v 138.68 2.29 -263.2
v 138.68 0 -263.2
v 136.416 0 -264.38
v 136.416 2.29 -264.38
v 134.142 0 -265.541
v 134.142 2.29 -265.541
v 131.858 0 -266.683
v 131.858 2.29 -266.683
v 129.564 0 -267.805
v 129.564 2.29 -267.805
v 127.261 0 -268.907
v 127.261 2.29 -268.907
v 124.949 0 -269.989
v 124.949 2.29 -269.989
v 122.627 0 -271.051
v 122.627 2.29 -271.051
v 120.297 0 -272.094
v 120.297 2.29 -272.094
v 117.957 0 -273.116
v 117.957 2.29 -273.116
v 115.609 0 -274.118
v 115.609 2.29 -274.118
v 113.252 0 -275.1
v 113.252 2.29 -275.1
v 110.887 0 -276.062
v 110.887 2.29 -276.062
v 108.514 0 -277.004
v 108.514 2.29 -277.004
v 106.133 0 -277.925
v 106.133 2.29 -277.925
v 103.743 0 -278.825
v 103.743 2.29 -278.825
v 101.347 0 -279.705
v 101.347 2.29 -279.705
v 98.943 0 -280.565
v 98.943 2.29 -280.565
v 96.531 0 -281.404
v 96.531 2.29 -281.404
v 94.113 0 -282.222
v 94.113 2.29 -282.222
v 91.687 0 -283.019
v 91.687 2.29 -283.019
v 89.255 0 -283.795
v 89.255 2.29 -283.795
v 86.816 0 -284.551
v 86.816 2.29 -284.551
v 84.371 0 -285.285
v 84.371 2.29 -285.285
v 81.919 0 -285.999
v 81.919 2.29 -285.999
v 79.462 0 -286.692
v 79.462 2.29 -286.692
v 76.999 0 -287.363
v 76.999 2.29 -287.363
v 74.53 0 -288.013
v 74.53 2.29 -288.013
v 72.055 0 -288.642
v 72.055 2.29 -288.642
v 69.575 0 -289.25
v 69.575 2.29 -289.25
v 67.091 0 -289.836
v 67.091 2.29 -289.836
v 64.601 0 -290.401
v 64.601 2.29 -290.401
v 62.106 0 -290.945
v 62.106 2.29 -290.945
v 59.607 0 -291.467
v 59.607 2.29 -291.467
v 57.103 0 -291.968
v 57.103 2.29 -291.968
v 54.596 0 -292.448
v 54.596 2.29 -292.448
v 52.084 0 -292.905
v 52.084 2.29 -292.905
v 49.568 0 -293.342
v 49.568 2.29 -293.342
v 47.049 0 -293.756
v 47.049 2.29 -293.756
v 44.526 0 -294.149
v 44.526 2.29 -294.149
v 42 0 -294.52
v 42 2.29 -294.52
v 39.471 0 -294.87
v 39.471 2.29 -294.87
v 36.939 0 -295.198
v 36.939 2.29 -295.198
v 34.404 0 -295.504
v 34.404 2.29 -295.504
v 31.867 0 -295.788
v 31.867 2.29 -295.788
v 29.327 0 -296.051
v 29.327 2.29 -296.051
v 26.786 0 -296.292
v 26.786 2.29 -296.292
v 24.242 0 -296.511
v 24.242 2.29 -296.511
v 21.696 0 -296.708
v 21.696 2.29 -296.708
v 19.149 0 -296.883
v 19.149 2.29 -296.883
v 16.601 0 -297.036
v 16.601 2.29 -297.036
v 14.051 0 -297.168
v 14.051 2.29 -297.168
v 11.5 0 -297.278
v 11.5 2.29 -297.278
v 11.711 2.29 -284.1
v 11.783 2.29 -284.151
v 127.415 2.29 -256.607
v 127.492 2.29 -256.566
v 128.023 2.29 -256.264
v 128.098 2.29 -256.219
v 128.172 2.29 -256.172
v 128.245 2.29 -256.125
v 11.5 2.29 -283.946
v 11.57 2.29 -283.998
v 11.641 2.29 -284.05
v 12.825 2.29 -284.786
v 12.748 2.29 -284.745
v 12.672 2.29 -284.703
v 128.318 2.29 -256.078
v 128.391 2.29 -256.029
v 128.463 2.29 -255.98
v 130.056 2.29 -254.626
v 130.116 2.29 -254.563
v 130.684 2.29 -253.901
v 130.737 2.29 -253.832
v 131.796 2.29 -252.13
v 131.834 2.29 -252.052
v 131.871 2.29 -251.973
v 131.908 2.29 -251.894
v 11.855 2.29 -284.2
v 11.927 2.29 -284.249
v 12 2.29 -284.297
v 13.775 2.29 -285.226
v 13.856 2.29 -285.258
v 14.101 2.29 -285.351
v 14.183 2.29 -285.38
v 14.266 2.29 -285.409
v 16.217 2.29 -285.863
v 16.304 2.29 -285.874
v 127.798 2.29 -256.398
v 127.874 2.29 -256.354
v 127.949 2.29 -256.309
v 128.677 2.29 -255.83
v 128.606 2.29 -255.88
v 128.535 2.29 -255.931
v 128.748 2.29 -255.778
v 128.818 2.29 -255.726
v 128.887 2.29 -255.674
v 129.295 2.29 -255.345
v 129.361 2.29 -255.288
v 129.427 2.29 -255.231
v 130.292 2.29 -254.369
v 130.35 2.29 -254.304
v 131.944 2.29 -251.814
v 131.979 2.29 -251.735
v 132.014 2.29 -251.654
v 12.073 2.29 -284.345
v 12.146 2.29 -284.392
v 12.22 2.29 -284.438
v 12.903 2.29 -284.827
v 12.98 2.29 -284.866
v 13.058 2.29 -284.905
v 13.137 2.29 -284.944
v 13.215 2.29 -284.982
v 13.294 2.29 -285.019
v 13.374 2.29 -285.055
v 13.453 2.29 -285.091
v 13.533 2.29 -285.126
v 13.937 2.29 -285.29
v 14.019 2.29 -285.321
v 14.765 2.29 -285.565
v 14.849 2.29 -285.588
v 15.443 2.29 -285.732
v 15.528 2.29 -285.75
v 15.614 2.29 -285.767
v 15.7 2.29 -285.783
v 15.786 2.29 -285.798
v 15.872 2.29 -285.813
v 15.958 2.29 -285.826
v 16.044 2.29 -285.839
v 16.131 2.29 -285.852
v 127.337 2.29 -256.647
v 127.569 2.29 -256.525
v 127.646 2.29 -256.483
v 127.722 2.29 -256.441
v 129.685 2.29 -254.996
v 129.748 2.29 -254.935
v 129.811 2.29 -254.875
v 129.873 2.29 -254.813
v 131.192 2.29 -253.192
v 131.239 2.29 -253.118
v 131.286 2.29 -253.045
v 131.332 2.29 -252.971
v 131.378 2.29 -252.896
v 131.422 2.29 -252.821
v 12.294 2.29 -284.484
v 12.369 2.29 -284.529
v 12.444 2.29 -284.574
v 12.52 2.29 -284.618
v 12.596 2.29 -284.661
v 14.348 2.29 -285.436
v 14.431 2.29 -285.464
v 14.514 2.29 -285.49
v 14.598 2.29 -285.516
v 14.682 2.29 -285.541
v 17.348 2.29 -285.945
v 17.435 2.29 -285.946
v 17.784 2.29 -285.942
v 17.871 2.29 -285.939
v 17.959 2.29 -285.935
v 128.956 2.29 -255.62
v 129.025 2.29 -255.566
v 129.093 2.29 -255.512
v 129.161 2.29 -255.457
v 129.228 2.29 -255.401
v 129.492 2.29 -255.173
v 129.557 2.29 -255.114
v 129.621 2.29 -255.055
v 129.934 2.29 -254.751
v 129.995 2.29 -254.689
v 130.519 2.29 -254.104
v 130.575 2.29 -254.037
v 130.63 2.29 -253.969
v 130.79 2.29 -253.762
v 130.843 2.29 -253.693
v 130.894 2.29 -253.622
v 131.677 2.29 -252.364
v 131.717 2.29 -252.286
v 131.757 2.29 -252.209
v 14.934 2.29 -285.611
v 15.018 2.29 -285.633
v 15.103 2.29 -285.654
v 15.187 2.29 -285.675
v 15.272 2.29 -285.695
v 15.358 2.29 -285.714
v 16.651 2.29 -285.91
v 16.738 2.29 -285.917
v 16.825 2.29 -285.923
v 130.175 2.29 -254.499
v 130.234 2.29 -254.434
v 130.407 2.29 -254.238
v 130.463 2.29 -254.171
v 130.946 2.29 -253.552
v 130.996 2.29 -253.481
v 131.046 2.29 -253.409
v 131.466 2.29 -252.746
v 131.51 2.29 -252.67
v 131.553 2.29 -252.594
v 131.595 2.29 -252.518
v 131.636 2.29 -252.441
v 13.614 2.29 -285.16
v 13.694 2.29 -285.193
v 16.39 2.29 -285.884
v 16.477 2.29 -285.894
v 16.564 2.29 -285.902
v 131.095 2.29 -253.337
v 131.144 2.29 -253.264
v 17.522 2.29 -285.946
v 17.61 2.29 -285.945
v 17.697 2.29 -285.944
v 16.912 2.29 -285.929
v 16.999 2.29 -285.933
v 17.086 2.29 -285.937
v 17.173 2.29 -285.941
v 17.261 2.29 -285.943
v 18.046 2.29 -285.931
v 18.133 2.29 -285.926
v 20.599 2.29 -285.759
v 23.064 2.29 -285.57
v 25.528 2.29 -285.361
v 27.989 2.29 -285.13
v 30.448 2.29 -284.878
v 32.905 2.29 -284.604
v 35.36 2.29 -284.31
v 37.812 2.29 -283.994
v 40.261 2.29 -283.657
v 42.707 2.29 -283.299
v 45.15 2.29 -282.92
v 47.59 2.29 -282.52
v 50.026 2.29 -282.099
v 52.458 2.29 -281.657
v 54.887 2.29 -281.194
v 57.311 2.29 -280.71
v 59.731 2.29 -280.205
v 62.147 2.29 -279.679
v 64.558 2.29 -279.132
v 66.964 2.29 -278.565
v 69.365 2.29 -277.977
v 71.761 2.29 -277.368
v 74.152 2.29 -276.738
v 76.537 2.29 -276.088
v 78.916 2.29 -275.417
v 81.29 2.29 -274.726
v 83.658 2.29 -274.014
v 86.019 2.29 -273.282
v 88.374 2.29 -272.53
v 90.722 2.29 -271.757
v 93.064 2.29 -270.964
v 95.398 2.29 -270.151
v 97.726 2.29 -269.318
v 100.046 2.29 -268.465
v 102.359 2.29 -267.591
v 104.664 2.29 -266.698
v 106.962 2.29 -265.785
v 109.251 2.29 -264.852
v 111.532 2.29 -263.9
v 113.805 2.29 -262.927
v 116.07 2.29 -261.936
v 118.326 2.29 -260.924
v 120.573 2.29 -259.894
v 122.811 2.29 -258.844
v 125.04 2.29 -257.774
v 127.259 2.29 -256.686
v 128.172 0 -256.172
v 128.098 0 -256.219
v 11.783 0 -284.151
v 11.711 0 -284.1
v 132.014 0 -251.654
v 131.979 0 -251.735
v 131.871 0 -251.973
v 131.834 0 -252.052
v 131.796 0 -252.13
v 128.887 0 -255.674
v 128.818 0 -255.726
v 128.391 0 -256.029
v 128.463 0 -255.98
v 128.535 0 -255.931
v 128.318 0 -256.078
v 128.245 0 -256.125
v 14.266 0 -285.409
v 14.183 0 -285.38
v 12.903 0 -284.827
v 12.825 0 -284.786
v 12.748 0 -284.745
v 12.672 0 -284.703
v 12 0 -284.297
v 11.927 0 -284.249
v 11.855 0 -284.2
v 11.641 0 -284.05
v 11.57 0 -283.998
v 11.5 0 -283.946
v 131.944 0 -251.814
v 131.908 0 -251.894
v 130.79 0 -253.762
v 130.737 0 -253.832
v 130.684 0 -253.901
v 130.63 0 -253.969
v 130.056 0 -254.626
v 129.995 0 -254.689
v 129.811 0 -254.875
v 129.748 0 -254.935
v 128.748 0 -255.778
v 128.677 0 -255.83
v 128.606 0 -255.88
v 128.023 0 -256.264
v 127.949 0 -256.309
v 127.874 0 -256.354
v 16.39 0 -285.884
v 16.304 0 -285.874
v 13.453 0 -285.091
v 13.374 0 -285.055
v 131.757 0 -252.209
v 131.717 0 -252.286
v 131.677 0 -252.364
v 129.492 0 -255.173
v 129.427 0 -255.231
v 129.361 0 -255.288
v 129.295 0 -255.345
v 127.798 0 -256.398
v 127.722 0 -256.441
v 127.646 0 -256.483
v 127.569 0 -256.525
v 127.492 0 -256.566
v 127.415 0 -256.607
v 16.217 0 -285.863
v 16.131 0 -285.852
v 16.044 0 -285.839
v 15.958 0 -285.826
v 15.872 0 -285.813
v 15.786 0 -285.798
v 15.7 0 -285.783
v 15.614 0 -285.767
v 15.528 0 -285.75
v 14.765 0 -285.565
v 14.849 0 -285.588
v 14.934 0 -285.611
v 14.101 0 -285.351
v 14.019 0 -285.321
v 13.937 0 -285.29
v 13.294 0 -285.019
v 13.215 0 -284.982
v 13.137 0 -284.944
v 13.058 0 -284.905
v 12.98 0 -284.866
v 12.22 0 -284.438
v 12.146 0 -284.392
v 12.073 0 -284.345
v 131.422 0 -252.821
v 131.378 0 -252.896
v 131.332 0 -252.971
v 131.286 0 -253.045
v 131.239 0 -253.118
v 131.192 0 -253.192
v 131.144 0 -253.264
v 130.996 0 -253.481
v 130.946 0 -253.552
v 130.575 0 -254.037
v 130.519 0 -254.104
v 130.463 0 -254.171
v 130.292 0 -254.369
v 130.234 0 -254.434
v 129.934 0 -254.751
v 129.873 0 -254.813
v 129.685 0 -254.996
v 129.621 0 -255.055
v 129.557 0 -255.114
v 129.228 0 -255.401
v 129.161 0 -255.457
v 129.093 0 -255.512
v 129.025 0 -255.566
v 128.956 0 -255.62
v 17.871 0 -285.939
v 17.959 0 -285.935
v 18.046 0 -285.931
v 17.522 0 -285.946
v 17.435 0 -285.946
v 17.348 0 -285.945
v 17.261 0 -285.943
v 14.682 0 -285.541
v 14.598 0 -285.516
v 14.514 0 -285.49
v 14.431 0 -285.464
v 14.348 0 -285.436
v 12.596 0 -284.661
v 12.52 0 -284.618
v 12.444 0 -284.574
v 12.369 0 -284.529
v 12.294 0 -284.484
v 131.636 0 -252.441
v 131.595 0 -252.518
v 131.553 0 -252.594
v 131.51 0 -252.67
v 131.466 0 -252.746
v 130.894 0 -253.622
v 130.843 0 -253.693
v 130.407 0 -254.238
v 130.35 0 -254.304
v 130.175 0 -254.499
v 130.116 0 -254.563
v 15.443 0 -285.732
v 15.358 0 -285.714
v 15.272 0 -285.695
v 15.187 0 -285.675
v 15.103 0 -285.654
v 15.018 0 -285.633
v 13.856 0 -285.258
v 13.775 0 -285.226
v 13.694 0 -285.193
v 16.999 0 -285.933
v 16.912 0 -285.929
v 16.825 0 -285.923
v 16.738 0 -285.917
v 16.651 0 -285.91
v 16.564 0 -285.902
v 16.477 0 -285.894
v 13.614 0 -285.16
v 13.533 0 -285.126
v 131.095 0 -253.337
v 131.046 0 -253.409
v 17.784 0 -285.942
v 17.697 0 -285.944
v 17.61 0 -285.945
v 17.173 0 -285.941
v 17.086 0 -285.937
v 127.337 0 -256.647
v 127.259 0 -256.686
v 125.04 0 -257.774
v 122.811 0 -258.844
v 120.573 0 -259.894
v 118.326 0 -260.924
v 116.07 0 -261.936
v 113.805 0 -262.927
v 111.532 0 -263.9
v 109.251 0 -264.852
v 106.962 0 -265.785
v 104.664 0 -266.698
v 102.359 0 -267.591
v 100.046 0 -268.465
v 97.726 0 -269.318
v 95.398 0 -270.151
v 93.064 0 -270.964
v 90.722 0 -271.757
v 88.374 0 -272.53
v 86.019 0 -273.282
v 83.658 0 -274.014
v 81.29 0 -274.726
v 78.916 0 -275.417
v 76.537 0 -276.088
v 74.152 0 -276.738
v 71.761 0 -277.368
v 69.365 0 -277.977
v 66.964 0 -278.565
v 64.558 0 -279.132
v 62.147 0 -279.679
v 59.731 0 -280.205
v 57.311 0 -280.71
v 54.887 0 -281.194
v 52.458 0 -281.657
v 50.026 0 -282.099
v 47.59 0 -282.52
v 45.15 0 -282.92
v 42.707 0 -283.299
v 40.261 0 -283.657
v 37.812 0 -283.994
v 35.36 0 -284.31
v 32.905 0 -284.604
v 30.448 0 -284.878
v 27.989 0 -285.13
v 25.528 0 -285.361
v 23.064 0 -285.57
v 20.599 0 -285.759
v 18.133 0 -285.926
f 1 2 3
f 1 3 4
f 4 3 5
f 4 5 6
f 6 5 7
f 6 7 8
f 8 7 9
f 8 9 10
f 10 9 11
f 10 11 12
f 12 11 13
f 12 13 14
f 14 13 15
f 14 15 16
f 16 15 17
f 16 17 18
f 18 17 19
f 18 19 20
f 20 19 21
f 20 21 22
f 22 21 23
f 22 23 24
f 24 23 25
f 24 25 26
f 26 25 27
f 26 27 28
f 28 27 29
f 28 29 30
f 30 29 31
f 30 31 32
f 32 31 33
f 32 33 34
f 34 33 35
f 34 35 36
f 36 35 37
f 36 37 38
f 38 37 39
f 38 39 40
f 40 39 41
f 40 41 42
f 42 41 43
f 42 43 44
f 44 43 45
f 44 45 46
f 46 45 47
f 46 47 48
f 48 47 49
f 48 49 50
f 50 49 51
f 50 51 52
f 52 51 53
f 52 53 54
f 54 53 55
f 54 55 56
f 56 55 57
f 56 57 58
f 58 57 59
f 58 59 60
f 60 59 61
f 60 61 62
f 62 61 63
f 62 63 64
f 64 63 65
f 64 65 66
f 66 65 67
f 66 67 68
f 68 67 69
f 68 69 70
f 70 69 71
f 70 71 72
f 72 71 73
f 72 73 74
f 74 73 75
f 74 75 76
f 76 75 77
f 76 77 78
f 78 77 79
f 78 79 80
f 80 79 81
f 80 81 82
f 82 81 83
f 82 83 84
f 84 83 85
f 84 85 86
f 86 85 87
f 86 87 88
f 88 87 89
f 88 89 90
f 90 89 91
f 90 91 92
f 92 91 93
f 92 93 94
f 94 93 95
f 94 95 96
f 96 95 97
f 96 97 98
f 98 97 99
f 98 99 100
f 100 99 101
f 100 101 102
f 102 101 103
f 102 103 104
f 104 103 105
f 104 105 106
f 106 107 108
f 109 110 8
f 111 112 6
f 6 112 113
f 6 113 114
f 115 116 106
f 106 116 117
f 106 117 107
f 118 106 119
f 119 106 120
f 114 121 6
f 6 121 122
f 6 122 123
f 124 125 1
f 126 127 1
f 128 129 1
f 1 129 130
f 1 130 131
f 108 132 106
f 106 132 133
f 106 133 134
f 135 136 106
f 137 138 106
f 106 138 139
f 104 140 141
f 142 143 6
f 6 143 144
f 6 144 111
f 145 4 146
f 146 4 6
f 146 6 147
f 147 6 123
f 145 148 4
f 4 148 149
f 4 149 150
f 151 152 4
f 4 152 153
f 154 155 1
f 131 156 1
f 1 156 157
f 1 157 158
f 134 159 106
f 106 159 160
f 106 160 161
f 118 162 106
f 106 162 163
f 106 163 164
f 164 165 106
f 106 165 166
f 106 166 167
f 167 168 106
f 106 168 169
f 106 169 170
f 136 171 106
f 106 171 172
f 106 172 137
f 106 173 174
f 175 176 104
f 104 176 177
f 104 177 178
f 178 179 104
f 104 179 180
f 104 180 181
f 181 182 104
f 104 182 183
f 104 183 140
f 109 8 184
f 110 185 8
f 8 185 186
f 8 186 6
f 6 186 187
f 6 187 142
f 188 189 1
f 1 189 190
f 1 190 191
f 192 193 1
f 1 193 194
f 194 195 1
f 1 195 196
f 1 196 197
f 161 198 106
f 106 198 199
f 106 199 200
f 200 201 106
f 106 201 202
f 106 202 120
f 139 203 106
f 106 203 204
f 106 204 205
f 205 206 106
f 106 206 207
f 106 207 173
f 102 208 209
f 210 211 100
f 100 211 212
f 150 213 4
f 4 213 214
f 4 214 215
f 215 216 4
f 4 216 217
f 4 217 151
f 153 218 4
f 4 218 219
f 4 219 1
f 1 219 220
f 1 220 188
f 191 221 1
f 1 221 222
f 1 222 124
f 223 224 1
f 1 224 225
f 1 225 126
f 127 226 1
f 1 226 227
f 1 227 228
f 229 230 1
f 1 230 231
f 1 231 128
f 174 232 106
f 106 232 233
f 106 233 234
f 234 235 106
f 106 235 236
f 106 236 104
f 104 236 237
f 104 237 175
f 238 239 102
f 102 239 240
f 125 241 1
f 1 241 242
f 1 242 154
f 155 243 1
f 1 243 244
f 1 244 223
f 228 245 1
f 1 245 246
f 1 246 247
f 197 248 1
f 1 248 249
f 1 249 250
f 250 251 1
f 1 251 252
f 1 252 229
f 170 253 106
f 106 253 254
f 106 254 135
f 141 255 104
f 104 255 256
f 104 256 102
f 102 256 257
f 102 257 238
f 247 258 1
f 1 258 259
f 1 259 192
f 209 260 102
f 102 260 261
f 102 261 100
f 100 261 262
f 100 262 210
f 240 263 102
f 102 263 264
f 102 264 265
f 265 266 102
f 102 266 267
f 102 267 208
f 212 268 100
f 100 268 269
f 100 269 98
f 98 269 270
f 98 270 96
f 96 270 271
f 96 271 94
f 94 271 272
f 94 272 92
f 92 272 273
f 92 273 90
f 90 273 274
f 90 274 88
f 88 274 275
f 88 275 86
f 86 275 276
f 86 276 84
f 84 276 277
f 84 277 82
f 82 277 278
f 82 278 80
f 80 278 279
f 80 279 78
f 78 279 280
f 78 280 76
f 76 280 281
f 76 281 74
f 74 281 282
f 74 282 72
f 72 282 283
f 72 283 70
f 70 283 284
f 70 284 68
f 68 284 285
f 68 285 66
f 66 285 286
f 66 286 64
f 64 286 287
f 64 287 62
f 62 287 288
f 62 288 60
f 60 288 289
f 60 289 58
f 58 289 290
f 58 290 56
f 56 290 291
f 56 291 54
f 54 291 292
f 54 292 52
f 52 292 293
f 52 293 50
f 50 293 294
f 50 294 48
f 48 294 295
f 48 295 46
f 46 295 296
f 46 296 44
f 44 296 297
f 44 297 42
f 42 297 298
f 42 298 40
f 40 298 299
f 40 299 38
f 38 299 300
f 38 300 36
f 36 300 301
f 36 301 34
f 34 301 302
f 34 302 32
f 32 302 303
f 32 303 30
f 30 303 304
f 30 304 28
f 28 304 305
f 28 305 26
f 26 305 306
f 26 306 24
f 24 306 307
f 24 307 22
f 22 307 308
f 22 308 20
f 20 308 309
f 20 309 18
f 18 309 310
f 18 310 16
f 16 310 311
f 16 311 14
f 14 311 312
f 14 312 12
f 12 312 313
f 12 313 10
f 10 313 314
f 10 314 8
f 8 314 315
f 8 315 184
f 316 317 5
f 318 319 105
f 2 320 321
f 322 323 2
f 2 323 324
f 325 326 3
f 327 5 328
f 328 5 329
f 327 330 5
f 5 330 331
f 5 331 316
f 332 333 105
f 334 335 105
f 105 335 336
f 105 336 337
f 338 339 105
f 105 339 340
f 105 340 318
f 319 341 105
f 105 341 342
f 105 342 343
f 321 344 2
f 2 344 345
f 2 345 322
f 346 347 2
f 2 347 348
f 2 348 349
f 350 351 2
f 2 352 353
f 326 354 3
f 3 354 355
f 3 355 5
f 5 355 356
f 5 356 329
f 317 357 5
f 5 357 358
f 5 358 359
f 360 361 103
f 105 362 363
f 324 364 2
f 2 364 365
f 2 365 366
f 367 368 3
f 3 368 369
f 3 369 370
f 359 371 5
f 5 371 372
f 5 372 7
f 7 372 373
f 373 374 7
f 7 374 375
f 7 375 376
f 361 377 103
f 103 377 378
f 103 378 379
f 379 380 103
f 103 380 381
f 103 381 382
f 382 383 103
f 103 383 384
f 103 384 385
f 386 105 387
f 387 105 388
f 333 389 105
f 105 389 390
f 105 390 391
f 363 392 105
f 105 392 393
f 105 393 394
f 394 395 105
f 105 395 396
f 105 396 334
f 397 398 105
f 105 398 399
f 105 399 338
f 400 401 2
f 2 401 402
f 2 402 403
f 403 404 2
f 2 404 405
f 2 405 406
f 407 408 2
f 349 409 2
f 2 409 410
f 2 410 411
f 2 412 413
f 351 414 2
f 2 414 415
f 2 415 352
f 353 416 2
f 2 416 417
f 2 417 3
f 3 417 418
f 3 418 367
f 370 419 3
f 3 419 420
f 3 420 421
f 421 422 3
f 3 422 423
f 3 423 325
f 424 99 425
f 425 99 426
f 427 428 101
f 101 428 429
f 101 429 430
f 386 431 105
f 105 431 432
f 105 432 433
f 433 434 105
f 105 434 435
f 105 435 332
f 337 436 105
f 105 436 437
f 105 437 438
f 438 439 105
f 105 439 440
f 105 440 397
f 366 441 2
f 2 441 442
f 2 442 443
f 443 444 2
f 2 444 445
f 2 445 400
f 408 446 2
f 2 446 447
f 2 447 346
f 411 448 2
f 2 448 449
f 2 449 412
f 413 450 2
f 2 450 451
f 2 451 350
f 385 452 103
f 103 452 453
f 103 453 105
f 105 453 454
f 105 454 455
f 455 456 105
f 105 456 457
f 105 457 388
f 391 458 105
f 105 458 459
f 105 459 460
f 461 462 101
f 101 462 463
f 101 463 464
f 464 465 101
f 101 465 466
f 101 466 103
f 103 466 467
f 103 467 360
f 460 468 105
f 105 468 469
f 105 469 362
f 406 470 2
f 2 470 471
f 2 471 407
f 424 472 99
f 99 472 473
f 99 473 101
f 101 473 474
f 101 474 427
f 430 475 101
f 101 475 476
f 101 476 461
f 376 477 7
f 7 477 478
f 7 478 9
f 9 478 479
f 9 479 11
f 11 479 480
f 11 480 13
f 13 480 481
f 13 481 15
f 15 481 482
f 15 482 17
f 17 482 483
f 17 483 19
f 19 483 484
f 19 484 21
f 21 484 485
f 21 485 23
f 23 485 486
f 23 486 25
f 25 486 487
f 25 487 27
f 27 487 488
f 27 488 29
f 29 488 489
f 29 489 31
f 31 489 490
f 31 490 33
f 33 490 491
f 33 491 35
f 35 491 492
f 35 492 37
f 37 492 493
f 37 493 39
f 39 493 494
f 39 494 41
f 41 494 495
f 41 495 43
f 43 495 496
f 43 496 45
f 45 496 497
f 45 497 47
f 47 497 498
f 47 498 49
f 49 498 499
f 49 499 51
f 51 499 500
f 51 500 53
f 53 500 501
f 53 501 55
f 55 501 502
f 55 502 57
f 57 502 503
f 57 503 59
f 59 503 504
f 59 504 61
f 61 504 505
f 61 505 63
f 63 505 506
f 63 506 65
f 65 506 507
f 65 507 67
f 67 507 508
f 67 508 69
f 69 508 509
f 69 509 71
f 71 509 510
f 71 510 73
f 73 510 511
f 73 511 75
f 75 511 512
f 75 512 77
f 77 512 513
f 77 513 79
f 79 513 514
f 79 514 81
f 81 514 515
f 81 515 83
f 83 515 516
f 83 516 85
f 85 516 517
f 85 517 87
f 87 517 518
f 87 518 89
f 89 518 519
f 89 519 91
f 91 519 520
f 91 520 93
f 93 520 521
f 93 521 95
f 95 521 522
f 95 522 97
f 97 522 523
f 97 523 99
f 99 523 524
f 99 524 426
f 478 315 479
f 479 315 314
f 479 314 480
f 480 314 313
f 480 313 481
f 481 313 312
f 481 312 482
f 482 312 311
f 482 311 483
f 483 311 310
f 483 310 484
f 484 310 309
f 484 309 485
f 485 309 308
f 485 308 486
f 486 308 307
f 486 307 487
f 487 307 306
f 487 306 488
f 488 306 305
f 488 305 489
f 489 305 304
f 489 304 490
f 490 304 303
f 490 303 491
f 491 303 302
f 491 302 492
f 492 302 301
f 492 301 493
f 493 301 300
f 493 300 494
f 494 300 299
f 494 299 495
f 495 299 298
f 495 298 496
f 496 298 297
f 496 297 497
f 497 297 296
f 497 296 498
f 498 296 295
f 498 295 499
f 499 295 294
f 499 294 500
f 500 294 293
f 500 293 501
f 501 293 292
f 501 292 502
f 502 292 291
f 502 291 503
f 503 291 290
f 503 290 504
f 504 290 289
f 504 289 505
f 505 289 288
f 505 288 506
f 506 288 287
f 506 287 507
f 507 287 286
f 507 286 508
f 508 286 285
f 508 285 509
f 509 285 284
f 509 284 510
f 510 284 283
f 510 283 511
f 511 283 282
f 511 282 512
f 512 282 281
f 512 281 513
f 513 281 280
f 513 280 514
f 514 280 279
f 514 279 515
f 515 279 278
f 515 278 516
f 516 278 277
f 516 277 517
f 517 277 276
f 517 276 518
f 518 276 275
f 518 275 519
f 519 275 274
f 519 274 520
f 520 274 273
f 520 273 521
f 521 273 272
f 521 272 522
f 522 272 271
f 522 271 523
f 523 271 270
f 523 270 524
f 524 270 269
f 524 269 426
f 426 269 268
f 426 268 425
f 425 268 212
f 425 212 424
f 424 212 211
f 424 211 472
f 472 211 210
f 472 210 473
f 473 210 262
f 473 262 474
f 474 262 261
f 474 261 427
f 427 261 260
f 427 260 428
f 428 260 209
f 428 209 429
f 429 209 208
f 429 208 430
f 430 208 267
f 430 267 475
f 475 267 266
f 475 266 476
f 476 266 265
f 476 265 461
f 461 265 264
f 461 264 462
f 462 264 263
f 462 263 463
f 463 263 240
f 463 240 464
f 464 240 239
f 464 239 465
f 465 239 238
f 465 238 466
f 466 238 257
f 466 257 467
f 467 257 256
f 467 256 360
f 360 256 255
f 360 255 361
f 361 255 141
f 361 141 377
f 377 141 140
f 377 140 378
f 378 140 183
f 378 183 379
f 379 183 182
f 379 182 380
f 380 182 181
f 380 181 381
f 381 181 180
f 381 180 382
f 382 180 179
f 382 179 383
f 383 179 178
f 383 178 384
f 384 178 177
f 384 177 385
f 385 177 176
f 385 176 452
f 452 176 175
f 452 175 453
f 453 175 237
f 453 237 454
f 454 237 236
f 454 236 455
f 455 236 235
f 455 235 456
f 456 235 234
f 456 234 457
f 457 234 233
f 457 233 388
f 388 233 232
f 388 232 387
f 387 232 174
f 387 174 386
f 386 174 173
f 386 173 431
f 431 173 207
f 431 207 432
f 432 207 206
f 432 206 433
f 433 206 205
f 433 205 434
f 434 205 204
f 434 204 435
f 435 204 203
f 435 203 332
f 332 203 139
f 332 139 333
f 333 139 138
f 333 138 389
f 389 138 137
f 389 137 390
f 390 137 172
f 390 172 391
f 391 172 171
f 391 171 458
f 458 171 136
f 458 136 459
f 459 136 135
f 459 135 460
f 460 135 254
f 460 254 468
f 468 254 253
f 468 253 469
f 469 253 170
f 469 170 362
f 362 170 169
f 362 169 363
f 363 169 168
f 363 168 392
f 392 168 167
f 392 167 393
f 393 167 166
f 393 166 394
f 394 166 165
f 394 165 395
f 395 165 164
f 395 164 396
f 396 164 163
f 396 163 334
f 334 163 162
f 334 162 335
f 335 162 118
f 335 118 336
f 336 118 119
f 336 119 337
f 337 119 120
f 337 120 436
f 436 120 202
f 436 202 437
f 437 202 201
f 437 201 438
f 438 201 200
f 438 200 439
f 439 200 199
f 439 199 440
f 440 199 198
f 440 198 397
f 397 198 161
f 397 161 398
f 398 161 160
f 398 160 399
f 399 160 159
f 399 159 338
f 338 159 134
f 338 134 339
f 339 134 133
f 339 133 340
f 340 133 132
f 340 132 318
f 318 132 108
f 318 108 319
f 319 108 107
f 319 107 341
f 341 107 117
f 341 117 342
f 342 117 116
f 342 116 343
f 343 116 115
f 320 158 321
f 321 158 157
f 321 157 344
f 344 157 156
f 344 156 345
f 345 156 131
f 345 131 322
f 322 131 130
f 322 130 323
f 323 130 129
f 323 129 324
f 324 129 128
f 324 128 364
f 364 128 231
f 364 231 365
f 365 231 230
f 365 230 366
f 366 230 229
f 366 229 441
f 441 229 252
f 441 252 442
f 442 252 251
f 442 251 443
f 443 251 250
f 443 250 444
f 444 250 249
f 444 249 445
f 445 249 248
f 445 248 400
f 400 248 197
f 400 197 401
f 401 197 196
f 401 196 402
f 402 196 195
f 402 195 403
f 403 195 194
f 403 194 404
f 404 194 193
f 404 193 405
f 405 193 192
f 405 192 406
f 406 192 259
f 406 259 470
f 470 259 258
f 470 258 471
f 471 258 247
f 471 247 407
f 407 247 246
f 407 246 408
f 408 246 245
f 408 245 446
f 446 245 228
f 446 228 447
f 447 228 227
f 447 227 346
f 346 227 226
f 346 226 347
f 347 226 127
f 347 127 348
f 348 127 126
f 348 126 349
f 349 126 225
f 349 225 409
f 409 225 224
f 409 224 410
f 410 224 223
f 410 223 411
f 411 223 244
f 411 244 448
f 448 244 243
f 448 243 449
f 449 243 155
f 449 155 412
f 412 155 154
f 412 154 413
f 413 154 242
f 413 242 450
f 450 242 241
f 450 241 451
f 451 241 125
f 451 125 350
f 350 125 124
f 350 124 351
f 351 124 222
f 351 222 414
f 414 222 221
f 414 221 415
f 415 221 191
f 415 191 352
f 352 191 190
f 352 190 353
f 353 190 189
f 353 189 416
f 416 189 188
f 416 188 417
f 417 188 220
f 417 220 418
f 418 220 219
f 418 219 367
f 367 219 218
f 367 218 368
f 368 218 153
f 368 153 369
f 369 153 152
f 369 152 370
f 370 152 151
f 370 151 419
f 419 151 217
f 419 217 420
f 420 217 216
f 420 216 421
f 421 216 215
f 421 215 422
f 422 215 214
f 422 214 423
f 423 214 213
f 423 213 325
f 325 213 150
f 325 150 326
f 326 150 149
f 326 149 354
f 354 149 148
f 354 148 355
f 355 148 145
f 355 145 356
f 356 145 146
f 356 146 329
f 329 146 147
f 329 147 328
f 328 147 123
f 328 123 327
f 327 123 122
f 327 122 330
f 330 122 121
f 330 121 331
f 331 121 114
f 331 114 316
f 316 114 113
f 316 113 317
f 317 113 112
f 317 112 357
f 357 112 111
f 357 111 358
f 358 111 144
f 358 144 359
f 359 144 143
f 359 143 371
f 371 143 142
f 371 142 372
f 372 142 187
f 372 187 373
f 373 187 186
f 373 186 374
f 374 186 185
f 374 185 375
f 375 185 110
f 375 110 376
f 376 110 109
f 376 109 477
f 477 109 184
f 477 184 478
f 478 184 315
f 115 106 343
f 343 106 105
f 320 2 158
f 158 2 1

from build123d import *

# Parameters (mm, degrees)
BOSS_EXTRUDE1_DEPTH = 2.29
CUT_EXTRUDE1_DEPTH  = 3
FILLET1_R           = 10
FILLET2_R           = 3
SKETCH5_W           = 34.038972109
SKETCH5_H           = 16.711464084
CUT_EXTRUDE3_DEPTH  = 10
SKETCH6_W           = 36.357164771
SKETCH6_H           = 12.163218603
CUT_EXTRUDE4_DEPTH  = 10


with BuildPart() as part:
    # Sketch1 → Boss-Extrude1 (new body)
    with BuildSketch(Plane(origin=(0, 0, 0), x_dir=(1, 0, 0), z_dir=(0, 1, 0))):
        with BuildLine():
            Line((1.5, 297.496218463), (1.5, 271.496218463))
            ThreePointArc((1.5, 271.496218463), (70.269464473, 262.249211634), (134.449071126, 235.872622221))
            Line((134.449071126, 235.872622221), (147.449071126, 258.389282719))
            ThreePointArc((147.449071126, 258.389282719), (76.998665918, 287.362933321), (1.5, 297.496218463))
        make_face()
    extrude(amount=BOSS_EXTRUDE1_DEPTH)

    # Sketch3 → Cut-Extrude1 (cut)
    with BuildSketch(Plane(origin=(0, 2.29, 0), x_dir=(1, 0, 0), z_dir=(0, 1, 0))):
        with BuildLine():
            Line((7.5, 271.396751344), (129.203185143, 238.786481168))
            Line((129.203185143, 238.786481168), (136.70589842, 251.781561758))
            ThreePointArc((136.70589842, 251.781561758), (74.15175015, 276.738099028), (7.5, 286.402177897))
            Line((7.5, 286.402177897), (7.5, 271.396751344))
        make_face()
    extrude(amount=-CUT_EXTRUDE1_DEPTH, mode=Mode.SUBTRACT)

    # Fillet1
    fillet1_edges = [part.edges().sort_by_distance(p)[0] for p in [
        (7.5, 1.145, -286.402177897),
        (136.70589842, 1.145, -251.781561758),
    ]]
    fillet(fillet1_edges, radius=FILLET1_R)

    # Fillet2
    fillet2_edges = [part.edges().sort_by_distance(p)[0] for p in [
        (7.5, 1.145, -271.396751344),
        (129.203185143, 1.145, -238.786481168),
    ]]
    fillet(fillet2_edges, radius=FILLET2_R)

    # Sketch5 → Cut-Extrude3 (cut)
    with BuildSketch(Plane.ZY.offset(-1.5)):
        with Locations((-282.724414262, 1.327160447)):
            Rectangle(SKETCH5_W, SKETCH5_H)
    extrude(amount=-CUT_EXTRUDE3_DEPTH, mode=Mode.SUBTRACT)

    # Sketch6 → Cut-Extrude4 (cut)
    with BuildSketch(Plane(origin=(-1.299038106, 0, -0.75), x_dir=(0.5000000000000013, 0, -0.8660254037844379), z_dir=(0.8660254037844378, 0, 0.5000000000000012))):
        with Locations((285.46076815, 1.026498226)):
            Rectangle(SKETCH6_W, SKETCH6_H)
    extrude(amount=-CUT_EXTRUDE4_DEPTH, mode=Mode.SUBTRACT)


solid = part.part
